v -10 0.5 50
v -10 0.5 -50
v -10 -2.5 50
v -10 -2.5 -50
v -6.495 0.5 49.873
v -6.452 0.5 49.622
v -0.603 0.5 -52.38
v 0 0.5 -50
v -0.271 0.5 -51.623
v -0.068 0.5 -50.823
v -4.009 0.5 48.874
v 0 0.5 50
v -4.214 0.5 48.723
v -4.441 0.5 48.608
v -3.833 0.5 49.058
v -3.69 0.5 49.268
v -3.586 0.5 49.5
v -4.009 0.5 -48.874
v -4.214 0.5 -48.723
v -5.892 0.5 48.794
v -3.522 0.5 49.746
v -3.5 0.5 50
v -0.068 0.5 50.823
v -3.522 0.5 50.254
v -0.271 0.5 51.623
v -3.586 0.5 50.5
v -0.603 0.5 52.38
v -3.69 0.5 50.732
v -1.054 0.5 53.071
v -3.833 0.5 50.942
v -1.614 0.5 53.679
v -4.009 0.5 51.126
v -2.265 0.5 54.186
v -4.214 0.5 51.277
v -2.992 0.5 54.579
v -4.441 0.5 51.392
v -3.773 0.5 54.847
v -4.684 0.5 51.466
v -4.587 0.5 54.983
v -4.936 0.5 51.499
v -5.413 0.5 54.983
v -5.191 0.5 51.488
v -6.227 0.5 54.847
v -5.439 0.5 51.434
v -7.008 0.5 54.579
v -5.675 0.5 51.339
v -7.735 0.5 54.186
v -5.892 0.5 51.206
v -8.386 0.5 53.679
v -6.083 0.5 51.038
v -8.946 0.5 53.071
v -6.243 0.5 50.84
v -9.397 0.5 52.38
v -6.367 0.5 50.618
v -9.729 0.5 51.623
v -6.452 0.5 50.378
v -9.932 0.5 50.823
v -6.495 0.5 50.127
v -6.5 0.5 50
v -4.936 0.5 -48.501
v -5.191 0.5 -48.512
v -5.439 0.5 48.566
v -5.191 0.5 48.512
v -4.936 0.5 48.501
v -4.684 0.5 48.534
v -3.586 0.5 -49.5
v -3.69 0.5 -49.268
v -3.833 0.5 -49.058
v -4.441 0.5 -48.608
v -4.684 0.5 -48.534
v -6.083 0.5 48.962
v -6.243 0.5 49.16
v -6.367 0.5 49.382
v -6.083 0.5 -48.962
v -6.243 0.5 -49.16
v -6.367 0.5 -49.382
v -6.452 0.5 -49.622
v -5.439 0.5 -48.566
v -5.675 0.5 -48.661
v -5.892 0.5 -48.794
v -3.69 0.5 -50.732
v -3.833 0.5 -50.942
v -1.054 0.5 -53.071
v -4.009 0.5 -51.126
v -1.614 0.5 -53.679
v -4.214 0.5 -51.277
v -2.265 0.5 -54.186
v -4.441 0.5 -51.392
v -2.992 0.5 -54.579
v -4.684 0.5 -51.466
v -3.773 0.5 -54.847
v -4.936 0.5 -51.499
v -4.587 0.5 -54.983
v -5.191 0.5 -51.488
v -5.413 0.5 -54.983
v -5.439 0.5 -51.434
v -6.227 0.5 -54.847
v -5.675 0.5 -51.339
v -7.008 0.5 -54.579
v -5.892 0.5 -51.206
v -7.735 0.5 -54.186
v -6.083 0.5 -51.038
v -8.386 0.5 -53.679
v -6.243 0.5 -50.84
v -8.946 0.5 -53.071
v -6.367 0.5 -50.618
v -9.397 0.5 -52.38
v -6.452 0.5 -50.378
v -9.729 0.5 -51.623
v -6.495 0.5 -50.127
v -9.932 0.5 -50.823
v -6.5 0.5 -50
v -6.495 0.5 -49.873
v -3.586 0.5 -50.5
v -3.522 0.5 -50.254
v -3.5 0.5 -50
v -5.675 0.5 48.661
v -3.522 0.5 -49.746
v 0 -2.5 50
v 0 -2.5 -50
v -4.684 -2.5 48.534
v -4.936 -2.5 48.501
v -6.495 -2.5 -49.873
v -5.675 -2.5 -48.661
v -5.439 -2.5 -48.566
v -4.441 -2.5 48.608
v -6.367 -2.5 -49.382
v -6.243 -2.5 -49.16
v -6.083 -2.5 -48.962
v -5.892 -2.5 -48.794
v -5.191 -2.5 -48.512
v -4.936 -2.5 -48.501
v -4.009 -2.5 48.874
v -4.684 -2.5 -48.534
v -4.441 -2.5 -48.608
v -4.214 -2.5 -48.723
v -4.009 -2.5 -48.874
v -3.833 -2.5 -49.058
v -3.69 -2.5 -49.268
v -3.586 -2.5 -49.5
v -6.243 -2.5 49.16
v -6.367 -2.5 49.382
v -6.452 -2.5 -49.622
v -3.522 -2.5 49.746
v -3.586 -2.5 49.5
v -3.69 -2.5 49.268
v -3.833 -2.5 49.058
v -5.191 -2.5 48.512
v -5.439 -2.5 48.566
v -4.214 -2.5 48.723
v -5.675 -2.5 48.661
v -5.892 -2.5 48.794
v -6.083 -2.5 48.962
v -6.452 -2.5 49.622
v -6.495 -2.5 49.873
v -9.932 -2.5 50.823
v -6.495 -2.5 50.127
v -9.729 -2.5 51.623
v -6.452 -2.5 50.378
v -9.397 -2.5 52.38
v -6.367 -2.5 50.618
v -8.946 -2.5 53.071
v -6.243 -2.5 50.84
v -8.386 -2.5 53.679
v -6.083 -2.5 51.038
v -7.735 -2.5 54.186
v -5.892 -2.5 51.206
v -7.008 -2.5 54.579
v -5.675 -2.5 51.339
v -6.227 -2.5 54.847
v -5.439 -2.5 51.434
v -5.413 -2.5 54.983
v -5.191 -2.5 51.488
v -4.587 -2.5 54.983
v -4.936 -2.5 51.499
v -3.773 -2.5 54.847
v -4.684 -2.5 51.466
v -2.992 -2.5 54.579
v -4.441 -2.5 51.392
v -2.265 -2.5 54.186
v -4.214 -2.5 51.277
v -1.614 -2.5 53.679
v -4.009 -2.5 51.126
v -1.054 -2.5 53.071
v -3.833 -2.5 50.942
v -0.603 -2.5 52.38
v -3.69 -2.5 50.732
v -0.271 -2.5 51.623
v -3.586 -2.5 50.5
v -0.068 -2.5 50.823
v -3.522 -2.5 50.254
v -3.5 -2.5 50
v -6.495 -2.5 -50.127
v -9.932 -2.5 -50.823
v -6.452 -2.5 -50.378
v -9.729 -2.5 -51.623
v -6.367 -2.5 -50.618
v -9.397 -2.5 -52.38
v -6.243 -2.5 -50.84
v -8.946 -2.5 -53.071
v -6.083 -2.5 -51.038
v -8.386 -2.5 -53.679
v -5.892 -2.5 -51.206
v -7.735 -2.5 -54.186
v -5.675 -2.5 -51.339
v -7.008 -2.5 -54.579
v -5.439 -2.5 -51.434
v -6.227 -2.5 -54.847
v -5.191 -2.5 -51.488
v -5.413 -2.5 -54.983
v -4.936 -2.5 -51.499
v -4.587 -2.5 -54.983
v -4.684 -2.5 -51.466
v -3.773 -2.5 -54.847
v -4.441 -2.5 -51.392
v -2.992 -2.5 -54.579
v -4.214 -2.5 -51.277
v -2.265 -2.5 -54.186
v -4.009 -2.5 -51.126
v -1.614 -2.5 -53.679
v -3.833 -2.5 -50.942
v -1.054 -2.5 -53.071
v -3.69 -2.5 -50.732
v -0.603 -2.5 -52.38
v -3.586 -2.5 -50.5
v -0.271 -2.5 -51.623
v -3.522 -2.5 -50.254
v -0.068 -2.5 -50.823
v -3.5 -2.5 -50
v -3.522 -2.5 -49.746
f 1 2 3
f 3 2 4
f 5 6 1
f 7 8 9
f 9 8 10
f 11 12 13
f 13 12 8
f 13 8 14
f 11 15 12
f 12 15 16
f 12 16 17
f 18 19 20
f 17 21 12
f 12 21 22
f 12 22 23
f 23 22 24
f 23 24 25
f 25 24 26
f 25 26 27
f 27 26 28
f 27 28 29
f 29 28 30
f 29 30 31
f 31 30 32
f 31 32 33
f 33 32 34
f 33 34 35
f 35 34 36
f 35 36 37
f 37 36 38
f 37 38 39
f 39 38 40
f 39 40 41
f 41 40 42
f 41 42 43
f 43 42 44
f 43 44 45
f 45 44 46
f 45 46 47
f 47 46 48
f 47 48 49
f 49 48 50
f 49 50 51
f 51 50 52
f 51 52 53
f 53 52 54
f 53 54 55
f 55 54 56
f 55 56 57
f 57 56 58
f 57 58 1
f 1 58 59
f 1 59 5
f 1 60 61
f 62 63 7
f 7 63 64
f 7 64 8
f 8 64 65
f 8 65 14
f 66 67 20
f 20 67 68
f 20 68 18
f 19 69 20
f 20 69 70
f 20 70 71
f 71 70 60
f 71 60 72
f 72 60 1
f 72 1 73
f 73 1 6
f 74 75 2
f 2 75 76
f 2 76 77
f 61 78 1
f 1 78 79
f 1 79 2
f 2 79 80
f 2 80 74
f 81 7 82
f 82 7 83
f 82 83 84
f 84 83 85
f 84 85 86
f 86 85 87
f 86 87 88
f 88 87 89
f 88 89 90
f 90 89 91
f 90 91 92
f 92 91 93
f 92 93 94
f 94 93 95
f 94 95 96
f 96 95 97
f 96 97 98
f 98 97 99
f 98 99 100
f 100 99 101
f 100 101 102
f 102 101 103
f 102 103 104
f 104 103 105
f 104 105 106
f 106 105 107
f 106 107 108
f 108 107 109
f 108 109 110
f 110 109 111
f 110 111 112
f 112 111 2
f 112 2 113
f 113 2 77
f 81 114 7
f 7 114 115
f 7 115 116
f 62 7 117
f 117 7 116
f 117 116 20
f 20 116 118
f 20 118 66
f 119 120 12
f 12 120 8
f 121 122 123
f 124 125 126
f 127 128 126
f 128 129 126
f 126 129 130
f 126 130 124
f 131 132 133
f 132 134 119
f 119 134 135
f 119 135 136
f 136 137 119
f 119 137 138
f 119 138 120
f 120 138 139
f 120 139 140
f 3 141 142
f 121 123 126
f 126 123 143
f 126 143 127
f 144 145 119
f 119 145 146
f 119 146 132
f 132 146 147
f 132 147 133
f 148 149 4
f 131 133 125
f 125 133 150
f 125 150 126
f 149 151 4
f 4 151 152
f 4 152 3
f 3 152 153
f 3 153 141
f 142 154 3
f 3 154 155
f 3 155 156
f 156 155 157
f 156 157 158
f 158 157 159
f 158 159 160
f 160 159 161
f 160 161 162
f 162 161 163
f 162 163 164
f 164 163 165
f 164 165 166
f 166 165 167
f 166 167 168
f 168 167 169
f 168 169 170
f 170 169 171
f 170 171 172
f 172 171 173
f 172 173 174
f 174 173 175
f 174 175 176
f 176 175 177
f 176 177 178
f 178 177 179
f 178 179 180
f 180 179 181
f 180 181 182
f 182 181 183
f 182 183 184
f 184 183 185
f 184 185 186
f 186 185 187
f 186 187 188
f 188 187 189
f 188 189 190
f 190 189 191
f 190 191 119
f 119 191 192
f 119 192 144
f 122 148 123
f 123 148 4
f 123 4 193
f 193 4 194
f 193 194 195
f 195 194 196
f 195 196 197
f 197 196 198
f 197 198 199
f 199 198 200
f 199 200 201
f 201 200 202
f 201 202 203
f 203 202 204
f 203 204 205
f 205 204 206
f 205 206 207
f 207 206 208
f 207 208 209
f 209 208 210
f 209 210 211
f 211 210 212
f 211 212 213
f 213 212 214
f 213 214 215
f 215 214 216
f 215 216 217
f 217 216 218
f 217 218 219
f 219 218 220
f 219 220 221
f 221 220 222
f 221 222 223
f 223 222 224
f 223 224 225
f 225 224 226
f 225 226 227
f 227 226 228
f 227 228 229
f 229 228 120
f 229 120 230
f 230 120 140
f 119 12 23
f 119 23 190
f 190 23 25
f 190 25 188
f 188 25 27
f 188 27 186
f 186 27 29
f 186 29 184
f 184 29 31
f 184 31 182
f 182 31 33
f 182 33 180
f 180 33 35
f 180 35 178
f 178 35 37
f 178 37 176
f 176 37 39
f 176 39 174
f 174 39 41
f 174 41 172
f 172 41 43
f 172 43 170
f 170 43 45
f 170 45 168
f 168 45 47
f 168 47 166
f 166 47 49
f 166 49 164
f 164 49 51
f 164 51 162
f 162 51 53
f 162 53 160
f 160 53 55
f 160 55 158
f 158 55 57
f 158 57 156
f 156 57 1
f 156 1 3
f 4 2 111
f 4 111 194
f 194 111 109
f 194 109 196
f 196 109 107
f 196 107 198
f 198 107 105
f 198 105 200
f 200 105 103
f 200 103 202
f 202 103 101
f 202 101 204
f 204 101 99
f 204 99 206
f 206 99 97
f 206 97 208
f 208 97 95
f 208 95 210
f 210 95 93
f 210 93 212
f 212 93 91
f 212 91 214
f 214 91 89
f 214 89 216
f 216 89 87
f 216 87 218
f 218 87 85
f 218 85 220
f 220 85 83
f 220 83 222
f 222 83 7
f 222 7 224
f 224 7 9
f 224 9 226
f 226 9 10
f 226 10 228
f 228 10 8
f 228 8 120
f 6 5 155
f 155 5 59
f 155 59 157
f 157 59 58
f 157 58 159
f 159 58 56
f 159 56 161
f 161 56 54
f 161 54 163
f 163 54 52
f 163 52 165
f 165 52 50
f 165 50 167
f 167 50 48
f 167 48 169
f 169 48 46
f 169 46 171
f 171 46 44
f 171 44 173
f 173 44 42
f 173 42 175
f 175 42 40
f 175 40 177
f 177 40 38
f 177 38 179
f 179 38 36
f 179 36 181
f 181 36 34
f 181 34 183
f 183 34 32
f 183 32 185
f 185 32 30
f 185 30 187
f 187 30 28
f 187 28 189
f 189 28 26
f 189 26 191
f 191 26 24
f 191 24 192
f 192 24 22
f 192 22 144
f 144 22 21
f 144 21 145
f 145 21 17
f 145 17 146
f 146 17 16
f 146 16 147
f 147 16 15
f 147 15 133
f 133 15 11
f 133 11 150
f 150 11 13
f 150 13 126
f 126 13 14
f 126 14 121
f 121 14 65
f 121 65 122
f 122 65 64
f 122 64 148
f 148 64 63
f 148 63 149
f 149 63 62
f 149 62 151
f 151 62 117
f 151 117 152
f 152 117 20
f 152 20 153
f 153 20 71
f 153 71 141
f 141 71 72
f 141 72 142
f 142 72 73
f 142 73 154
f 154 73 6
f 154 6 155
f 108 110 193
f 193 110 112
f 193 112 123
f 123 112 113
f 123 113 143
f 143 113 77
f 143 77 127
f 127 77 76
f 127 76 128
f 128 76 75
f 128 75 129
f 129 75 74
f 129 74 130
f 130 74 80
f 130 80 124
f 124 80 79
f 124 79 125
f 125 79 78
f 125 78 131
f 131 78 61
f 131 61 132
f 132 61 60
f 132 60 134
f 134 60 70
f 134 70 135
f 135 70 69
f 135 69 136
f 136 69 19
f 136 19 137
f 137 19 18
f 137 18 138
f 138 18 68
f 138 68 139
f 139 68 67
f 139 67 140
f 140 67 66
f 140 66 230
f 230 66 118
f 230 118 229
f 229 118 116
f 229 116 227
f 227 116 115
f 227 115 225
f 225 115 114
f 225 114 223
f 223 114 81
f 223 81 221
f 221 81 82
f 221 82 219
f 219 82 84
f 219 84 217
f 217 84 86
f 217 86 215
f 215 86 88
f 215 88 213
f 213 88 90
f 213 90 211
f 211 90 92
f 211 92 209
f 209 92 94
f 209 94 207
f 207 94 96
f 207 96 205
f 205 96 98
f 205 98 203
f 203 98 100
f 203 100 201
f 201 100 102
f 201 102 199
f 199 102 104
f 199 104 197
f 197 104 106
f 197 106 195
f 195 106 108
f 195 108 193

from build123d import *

# Parameters (mm, degrees)
BOSS_EXTRUDE1_DEPTH      = 50
BOSS_EXTRUDE1_DEPTH_BACK = 50
SKETCH2_W                = 10
SKETCH2_H                = 3
SKETCH3_W                = 5
SKETCH3_H                = 3
SKETCH5_R                = 1.5
CUT_EXTRUDE2_DEPTH       = 3


with BuildPart() as part:
    # Sketch2 → Boss-Extrude1 (new, two sides: drawn at the far end of the back side and taken through both)
    with BuildSketch(Plane.XY.offset(-BOSS_EXTRUDE1_DEPTH_BACK)):
        with Locations((-5, -1)):
            Rectangle(SKETCH2_W, SKETCH2_H)
    extrude(amount=BOSS_EXTRUDE1_DEPTH + BOSS_EXTRUDE1_DEPTH_BACK)

    # Sketch3 → Revolve1 (revolve)
    with BuildSketch(Plane.XY.offset(50)):
        with Locations((-2.5, -1)):
            Rectangle(SKETCH3_W, SKETCH3_H)
    revolve1 = revolve(axis=Axis((-5, 0.5, 50), (0, -1, 0)))

    # Mirror1: Revolve1 across plane
    add(revolve1.mirror(Plane.XY))

    # Sketch5 → Cut-Extrude2 (cut)
    with BuildSketch(Plane(origin=(0, -2.5, 0), x_dir=(-1, 0, 0), z_dir=(0, -1, 0))):
        with Locations(Location((5, -50, 0), (0, 0, 180))):
            Circle(SKETCH5_R)
    cut_extrude2 = extrude(amount=-CUT_EXTRUDE2_DEPTH, mode=Mode.SUBTRACT)

    # Mirror2: Cut-Extrude2 across plane
    add(cut_extrude2.mirror(Plane.XY), mode=Mode.SUBTRACT)


solid = part.part
